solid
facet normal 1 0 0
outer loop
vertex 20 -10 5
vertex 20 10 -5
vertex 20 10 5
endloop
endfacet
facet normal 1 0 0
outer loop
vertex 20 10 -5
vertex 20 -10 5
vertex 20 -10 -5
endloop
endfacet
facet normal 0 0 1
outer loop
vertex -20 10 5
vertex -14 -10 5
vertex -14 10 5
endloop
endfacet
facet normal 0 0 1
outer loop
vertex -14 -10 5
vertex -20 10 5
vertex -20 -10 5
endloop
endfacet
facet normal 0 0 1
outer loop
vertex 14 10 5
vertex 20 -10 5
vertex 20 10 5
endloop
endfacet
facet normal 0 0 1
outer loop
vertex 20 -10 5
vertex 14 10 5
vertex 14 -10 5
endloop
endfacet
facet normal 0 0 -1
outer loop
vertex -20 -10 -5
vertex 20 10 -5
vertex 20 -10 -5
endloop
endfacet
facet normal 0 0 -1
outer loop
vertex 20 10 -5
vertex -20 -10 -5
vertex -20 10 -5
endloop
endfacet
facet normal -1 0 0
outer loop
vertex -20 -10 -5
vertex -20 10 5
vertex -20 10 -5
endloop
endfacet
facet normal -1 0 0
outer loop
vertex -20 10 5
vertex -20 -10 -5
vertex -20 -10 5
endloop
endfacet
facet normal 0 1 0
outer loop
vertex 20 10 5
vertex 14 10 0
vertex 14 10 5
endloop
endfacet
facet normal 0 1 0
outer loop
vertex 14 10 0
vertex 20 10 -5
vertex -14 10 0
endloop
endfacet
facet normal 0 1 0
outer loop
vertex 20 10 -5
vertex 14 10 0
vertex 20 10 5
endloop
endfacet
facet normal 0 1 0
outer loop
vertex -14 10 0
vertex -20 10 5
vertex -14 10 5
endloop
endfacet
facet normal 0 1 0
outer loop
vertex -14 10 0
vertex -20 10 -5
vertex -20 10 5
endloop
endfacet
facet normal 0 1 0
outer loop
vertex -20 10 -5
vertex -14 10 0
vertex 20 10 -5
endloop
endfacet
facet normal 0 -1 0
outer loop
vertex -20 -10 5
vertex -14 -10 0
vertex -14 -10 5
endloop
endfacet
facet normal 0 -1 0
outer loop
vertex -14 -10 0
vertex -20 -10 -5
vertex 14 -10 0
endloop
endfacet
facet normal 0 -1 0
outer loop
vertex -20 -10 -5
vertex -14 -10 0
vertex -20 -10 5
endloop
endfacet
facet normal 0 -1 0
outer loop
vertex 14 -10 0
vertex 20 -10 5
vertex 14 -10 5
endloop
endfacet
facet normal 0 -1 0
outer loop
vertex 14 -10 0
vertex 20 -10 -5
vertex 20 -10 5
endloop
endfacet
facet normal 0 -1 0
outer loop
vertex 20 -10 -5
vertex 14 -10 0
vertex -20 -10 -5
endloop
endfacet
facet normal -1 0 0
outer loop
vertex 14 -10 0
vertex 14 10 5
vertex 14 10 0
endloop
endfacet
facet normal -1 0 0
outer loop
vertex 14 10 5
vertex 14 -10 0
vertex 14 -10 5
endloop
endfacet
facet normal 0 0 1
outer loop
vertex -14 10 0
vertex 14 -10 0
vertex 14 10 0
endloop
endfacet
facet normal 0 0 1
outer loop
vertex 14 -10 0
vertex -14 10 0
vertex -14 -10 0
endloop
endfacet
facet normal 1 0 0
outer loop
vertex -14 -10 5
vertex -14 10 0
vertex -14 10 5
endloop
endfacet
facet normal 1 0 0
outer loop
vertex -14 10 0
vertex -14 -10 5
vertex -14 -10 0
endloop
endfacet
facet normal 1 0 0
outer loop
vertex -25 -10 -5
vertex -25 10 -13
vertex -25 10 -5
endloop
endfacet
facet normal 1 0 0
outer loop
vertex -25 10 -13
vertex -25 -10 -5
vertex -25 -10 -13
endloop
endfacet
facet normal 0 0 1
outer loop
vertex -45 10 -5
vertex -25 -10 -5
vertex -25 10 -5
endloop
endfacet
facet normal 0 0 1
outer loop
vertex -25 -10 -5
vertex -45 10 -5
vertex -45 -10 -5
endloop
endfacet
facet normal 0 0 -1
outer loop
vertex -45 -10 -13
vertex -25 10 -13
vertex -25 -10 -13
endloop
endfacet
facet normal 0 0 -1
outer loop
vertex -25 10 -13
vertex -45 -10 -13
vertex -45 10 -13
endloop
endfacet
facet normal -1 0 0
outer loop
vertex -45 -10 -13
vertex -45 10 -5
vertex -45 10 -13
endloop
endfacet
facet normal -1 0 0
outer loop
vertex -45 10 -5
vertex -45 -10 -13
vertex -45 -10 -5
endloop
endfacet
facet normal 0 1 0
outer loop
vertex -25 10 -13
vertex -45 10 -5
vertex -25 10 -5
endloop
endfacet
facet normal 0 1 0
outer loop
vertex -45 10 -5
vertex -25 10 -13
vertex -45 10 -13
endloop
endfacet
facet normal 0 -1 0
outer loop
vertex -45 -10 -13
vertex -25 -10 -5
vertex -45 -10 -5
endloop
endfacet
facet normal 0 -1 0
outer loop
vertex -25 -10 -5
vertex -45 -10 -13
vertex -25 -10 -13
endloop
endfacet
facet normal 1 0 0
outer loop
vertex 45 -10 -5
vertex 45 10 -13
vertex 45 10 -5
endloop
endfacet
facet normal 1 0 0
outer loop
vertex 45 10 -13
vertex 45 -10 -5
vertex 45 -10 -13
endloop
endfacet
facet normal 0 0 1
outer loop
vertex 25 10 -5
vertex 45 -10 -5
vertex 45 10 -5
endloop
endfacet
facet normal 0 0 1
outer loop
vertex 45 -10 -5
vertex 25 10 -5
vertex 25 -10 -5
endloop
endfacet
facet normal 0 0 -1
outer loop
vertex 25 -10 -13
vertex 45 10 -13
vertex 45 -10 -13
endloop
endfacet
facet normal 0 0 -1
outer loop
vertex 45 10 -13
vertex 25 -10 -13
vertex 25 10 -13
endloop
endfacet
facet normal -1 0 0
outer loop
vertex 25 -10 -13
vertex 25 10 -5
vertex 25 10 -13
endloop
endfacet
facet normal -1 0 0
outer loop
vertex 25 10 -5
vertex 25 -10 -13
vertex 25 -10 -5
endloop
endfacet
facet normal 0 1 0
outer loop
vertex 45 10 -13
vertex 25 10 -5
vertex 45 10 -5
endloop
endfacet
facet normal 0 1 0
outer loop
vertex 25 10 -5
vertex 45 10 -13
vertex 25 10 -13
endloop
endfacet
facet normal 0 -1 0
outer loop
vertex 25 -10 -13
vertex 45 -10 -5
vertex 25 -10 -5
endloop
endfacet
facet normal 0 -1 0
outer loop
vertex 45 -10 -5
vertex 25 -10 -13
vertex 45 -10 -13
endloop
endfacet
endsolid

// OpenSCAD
// Define dimensions for the components
module central_block() {
    difference() {
        // Base block
        cube([40, 20, 10], center = true);
        // Adjusted cutout for stepped profile to match original model
        translate([0, 0, 5])
            cube([28, 20, 10], center = true); // Narrower cutout for a wider central section
        // Additional tier for a more pronounced stepped profile
        translate([0, 0, 7.5])
            cube([20, 20, 5], center = true);
    }
}

module side_block() {
    // Adjusted side block dimensions to match original model
    cube([20, 20, 8], center = true); // Reduced height for a lower profile
}

// Assemble the model
module flexible_coupling() {
    // Layer 2: Central block
    central_block();

    // Layer 1: Side blocks (repositioned further apart and lowered)
    translate([-35, 0, -9]) // Position left side block
        side_block();
    translate([35, 0, -9]) // Position right side block
        side_block();
}

// Render the model
flexible_coupling();
